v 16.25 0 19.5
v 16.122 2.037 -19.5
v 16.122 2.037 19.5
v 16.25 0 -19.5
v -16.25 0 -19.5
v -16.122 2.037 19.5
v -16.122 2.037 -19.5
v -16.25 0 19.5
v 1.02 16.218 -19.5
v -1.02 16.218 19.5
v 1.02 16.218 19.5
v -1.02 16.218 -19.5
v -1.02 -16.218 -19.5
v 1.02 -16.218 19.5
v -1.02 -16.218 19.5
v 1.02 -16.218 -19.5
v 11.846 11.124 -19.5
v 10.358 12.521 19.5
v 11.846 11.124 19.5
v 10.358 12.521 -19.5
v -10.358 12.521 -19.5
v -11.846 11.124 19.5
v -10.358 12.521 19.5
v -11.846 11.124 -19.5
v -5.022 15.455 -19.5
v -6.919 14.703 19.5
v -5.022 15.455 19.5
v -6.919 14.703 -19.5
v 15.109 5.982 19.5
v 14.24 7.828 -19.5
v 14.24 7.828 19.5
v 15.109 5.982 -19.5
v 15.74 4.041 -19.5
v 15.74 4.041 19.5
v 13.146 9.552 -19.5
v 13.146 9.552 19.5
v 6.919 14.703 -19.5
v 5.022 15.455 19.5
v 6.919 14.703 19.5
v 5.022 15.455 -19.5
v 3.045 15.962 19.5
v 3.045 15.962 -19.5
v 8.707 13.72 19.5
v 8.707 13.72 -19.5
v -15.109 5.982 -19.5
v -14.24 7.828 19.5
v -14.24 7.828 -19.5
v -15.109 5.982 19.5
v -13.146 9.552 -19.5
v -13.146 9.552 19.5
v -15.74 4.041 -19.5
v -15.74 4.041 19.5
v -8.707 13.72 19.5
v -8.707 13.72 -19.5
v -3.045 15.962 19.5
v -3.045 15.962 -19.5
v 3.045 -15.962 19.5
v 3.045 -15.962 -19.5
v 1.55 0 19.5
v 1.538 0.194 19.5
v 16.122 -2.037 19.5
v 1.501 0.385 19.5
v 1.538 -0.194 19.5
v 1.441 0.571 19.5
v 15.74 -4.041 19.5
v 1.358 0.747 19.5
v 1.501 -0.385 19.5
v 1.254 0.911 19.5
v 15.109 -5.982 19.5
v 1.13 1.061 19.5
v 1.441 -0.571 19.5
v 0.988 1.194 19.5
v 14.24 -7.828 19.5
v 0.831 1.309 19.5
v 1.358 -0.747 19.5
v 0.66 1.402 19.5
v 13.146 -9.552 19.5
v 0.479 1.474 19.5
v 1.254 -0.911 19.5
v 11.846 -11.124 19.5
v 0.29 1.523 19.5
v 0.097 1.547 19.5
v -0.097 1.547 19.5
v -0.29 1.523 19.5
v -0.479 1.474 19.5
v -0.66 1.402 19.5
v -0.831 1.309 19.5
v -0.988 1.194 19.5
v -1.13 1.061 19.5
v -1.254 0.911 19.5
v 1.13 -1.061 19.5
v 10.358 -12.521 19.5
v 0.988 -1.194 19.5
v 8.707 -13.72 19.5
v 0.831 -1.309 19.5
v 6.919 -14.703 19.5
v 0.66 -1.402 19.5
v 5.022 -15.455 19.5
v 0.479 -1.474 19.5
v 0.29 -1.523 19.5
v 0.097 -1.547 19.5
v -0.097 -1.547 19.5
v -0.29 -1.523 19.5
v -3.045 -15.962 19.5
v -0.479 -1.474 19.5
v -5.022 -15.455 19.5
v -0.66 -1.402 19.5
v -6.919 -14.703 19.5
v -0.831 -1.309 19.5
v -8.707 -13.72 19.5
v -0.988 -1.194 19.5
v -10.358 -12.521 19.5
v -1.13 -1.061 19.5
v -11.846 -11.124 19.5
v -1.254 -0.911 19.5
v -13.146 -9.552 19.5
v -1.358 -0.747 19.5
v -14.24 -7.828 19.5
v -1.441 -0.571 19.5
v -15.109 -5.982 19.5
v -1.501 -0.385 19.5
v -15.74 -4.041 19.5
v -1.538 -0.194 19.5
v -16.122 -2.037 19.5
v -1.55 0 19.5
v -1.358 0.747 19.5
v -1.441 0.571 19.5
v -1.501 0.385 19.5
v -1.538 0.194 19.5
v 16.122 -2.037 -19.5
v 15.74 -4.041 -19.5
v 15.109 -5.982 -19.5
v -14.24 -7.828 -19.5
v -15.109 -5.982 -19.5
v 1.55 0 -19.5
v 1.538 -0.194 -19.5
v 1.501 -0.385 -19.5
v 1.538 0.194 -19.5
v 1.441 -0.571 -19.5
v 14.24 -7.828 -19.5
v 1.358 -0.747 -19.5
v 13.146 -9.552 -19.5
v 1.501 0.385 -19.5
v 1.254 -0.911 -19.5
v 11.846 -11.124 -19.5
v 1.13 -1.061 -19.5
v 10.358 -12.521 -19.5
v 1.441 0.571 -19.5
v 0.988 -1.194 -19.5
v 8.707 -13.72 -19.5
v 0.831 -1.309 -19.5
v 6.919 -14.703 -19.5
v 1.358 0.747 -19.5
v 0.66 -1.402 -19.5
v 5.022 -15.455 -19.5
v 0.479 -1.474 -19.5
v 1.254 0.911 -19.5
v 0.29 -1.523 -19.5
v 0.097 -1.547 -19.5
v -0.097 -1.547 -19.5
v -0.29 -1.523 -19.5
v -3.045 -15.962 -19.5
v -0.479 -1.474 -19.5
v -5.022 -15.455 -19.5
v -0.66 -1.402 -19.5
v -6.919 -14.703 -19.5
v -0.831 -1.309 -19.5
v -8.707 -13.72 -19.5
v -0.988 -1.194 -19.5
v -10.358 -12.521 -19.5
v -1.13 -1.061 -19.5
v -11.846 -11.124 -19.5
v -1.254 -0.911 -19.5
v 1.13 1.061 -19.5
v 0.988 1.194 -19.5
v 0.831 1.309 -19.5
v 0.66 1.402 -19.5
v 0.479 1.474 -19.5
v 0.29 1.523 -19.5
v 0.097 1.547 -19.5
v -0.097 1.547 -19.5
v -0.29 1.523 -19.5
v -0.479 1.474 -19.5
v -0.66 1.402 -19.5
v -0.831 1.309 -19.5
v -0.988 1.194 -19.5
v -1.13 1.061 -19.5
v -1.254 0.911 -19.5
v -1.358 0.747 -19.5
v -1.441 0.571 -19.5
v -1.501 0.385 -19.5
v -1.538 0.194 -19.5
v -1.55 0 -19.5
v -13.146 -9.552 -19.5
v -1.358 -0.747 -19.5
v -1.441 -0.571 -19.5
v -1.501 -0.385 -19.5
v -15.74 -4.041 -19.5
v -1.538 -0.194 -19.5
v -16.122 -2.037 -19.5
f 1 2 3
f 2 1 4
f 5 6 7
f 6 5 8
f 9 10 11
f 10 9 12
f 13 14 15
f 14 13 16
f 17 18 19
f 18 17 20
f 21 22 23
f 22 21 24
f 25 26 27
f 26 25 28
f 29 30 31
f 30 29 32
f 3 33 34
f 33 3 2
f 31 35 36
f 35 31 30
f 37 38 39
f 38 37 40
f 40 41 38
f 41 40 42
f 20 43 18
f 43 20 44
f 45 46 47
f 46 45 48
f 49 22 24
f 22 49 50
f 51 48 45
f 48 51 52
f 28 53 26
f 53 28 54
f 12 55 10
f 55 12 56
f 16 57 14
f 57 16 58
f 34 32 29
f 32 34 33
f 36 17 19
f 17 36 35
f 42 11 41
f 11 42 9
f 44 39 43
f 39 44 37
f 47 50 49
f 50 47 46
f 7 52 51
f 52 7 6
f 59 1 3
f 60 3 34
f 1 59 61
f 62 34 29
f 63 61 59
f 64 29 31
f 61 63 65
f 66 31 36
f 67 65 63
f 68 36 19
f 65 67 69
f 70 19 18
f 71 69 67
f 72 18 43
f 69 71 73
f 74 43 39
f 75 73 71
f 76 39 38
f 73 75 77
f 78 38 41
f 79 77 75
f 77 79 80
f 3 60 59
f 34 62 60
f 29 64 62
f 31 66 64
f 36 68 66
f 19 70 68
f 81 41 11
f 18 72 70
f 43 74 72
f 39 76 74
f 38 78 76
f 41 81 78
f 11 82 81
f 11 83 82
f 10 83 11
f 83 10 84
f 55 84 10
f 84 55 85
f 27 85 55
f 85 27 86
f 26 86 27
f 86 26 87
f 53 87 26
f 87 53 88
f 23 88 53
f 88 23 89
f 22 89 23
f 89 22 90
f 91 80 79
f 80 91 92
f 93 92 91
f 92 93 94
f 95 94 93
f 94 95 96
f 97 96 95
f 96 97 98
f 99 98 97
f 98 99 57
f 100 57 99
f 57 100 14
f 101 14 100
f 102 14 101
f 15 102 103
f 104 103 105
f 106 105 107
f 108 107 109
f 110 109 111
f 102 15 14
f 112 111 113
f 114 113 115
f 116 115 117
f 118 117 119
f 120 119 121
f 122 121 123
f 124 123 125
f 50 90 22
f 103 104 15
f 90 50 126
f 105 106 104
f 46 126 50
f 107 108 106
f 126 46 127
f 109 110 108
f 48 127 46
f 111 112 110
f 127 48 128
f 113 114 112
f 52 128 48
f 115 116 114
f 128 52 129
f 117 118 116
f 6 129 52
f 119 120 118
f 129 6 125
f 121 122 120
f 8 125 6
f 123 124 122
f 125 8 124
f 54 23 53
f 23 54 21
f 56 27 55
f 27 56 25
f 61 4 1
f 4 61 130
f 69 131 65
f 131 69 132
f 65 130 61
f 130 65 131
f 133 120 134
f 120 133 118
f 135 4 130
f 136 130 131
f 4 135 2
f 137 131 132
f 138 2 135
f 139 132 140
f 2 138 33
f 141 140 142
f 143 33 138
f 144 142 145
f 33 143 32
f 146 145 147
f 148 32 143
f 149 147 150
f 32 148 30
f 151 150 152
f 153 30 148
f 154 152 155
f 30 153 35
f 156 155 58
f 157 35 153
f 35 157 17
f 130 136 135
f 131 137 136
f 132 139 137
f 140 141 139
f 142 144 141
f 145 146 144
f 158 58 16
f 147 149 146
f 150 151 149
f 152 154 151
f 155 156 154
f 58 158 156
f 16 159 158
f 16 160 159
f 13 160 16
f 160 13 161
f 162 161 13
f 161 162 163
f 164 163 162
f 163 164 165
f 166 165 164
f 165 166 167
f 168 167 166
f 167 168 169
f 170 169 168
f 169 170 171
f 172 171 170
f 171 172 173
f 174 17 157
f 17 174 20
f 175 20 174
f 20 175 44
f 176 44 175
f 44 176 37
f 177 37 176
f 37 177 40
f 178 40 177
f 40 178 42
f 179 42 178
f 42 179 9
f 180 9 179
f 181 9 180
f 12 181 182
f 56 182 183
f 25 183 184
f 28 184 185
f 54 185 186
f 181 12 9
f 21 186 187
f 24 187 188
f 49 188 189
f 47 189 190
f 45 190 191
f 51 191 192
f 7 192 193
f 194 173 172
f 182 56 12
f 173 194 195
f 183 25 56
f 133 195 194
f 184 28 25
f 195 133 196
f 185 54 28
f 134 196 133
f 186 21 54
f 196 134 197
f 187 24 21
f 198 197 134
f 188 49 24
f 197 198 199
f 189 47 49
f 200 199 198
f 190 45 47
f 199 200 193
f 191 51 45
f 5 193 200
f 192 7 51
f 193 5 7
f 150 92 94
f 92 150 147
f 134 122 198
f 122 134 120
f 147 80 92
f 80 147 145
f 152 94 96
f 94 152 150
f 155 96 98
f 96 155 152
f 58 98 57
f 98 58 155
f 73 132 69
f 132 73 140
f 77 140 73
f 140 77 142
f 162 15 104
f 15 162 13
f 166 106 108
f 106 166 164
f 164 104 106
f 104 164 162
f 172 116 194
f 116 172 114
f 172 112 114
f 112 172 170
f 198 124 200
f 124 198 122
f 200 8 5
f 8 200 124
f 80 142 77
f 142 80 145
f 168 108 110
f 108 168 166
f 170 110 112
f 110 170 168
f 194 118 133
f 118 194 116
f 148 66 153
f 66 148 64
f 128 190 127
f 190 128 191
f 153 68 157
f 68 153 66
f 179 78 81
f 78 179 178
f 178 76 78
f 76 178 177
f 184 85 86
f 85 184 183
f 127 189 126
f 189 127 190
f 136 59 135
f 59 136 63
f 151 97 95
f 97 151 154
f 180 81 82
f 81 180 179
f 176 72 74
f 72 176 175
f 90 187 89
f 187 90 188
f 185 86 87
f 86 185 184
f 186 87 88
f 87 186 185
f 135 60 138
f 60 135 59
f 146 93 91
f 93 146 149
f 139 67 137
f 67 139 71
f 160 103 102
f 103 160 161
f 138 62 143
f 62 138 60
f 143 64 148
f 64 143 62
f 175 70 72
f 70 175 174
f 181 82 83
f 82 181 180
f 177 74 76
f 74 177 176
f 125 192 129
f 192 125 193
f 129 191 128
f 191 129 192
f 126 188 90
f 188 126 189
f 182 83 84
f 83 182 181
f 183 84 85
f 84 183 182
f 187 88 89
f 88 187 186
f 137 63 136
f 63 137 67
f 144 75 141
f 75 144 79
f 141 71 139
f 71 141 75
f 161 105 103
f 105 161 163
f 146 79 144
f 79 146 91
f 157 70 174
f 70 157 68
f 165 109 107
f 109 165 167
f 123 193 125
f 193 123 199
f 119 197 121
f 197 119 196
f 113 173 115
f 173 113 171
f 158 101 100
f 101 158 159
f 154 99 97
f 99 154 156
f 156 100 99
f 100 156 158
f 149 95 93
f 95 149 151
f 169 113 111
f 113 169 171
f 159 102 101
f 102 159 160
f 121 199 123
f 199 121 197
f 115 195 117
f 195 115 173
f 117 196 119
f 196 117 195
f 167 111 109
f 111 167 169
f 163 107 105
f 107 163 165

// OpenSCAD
$fn = 50;


difference() {
	union() {
		translate(v = [0, 0, -19.5000000000]) {
			cylinder(h = 39, r = 16.2500000000);
		}
	}
	union() {
		translate(v = [0, 0, -100.0000000000]) {
			cylinder(h = 200, r = 1.5500000000);
		}
	}
}
